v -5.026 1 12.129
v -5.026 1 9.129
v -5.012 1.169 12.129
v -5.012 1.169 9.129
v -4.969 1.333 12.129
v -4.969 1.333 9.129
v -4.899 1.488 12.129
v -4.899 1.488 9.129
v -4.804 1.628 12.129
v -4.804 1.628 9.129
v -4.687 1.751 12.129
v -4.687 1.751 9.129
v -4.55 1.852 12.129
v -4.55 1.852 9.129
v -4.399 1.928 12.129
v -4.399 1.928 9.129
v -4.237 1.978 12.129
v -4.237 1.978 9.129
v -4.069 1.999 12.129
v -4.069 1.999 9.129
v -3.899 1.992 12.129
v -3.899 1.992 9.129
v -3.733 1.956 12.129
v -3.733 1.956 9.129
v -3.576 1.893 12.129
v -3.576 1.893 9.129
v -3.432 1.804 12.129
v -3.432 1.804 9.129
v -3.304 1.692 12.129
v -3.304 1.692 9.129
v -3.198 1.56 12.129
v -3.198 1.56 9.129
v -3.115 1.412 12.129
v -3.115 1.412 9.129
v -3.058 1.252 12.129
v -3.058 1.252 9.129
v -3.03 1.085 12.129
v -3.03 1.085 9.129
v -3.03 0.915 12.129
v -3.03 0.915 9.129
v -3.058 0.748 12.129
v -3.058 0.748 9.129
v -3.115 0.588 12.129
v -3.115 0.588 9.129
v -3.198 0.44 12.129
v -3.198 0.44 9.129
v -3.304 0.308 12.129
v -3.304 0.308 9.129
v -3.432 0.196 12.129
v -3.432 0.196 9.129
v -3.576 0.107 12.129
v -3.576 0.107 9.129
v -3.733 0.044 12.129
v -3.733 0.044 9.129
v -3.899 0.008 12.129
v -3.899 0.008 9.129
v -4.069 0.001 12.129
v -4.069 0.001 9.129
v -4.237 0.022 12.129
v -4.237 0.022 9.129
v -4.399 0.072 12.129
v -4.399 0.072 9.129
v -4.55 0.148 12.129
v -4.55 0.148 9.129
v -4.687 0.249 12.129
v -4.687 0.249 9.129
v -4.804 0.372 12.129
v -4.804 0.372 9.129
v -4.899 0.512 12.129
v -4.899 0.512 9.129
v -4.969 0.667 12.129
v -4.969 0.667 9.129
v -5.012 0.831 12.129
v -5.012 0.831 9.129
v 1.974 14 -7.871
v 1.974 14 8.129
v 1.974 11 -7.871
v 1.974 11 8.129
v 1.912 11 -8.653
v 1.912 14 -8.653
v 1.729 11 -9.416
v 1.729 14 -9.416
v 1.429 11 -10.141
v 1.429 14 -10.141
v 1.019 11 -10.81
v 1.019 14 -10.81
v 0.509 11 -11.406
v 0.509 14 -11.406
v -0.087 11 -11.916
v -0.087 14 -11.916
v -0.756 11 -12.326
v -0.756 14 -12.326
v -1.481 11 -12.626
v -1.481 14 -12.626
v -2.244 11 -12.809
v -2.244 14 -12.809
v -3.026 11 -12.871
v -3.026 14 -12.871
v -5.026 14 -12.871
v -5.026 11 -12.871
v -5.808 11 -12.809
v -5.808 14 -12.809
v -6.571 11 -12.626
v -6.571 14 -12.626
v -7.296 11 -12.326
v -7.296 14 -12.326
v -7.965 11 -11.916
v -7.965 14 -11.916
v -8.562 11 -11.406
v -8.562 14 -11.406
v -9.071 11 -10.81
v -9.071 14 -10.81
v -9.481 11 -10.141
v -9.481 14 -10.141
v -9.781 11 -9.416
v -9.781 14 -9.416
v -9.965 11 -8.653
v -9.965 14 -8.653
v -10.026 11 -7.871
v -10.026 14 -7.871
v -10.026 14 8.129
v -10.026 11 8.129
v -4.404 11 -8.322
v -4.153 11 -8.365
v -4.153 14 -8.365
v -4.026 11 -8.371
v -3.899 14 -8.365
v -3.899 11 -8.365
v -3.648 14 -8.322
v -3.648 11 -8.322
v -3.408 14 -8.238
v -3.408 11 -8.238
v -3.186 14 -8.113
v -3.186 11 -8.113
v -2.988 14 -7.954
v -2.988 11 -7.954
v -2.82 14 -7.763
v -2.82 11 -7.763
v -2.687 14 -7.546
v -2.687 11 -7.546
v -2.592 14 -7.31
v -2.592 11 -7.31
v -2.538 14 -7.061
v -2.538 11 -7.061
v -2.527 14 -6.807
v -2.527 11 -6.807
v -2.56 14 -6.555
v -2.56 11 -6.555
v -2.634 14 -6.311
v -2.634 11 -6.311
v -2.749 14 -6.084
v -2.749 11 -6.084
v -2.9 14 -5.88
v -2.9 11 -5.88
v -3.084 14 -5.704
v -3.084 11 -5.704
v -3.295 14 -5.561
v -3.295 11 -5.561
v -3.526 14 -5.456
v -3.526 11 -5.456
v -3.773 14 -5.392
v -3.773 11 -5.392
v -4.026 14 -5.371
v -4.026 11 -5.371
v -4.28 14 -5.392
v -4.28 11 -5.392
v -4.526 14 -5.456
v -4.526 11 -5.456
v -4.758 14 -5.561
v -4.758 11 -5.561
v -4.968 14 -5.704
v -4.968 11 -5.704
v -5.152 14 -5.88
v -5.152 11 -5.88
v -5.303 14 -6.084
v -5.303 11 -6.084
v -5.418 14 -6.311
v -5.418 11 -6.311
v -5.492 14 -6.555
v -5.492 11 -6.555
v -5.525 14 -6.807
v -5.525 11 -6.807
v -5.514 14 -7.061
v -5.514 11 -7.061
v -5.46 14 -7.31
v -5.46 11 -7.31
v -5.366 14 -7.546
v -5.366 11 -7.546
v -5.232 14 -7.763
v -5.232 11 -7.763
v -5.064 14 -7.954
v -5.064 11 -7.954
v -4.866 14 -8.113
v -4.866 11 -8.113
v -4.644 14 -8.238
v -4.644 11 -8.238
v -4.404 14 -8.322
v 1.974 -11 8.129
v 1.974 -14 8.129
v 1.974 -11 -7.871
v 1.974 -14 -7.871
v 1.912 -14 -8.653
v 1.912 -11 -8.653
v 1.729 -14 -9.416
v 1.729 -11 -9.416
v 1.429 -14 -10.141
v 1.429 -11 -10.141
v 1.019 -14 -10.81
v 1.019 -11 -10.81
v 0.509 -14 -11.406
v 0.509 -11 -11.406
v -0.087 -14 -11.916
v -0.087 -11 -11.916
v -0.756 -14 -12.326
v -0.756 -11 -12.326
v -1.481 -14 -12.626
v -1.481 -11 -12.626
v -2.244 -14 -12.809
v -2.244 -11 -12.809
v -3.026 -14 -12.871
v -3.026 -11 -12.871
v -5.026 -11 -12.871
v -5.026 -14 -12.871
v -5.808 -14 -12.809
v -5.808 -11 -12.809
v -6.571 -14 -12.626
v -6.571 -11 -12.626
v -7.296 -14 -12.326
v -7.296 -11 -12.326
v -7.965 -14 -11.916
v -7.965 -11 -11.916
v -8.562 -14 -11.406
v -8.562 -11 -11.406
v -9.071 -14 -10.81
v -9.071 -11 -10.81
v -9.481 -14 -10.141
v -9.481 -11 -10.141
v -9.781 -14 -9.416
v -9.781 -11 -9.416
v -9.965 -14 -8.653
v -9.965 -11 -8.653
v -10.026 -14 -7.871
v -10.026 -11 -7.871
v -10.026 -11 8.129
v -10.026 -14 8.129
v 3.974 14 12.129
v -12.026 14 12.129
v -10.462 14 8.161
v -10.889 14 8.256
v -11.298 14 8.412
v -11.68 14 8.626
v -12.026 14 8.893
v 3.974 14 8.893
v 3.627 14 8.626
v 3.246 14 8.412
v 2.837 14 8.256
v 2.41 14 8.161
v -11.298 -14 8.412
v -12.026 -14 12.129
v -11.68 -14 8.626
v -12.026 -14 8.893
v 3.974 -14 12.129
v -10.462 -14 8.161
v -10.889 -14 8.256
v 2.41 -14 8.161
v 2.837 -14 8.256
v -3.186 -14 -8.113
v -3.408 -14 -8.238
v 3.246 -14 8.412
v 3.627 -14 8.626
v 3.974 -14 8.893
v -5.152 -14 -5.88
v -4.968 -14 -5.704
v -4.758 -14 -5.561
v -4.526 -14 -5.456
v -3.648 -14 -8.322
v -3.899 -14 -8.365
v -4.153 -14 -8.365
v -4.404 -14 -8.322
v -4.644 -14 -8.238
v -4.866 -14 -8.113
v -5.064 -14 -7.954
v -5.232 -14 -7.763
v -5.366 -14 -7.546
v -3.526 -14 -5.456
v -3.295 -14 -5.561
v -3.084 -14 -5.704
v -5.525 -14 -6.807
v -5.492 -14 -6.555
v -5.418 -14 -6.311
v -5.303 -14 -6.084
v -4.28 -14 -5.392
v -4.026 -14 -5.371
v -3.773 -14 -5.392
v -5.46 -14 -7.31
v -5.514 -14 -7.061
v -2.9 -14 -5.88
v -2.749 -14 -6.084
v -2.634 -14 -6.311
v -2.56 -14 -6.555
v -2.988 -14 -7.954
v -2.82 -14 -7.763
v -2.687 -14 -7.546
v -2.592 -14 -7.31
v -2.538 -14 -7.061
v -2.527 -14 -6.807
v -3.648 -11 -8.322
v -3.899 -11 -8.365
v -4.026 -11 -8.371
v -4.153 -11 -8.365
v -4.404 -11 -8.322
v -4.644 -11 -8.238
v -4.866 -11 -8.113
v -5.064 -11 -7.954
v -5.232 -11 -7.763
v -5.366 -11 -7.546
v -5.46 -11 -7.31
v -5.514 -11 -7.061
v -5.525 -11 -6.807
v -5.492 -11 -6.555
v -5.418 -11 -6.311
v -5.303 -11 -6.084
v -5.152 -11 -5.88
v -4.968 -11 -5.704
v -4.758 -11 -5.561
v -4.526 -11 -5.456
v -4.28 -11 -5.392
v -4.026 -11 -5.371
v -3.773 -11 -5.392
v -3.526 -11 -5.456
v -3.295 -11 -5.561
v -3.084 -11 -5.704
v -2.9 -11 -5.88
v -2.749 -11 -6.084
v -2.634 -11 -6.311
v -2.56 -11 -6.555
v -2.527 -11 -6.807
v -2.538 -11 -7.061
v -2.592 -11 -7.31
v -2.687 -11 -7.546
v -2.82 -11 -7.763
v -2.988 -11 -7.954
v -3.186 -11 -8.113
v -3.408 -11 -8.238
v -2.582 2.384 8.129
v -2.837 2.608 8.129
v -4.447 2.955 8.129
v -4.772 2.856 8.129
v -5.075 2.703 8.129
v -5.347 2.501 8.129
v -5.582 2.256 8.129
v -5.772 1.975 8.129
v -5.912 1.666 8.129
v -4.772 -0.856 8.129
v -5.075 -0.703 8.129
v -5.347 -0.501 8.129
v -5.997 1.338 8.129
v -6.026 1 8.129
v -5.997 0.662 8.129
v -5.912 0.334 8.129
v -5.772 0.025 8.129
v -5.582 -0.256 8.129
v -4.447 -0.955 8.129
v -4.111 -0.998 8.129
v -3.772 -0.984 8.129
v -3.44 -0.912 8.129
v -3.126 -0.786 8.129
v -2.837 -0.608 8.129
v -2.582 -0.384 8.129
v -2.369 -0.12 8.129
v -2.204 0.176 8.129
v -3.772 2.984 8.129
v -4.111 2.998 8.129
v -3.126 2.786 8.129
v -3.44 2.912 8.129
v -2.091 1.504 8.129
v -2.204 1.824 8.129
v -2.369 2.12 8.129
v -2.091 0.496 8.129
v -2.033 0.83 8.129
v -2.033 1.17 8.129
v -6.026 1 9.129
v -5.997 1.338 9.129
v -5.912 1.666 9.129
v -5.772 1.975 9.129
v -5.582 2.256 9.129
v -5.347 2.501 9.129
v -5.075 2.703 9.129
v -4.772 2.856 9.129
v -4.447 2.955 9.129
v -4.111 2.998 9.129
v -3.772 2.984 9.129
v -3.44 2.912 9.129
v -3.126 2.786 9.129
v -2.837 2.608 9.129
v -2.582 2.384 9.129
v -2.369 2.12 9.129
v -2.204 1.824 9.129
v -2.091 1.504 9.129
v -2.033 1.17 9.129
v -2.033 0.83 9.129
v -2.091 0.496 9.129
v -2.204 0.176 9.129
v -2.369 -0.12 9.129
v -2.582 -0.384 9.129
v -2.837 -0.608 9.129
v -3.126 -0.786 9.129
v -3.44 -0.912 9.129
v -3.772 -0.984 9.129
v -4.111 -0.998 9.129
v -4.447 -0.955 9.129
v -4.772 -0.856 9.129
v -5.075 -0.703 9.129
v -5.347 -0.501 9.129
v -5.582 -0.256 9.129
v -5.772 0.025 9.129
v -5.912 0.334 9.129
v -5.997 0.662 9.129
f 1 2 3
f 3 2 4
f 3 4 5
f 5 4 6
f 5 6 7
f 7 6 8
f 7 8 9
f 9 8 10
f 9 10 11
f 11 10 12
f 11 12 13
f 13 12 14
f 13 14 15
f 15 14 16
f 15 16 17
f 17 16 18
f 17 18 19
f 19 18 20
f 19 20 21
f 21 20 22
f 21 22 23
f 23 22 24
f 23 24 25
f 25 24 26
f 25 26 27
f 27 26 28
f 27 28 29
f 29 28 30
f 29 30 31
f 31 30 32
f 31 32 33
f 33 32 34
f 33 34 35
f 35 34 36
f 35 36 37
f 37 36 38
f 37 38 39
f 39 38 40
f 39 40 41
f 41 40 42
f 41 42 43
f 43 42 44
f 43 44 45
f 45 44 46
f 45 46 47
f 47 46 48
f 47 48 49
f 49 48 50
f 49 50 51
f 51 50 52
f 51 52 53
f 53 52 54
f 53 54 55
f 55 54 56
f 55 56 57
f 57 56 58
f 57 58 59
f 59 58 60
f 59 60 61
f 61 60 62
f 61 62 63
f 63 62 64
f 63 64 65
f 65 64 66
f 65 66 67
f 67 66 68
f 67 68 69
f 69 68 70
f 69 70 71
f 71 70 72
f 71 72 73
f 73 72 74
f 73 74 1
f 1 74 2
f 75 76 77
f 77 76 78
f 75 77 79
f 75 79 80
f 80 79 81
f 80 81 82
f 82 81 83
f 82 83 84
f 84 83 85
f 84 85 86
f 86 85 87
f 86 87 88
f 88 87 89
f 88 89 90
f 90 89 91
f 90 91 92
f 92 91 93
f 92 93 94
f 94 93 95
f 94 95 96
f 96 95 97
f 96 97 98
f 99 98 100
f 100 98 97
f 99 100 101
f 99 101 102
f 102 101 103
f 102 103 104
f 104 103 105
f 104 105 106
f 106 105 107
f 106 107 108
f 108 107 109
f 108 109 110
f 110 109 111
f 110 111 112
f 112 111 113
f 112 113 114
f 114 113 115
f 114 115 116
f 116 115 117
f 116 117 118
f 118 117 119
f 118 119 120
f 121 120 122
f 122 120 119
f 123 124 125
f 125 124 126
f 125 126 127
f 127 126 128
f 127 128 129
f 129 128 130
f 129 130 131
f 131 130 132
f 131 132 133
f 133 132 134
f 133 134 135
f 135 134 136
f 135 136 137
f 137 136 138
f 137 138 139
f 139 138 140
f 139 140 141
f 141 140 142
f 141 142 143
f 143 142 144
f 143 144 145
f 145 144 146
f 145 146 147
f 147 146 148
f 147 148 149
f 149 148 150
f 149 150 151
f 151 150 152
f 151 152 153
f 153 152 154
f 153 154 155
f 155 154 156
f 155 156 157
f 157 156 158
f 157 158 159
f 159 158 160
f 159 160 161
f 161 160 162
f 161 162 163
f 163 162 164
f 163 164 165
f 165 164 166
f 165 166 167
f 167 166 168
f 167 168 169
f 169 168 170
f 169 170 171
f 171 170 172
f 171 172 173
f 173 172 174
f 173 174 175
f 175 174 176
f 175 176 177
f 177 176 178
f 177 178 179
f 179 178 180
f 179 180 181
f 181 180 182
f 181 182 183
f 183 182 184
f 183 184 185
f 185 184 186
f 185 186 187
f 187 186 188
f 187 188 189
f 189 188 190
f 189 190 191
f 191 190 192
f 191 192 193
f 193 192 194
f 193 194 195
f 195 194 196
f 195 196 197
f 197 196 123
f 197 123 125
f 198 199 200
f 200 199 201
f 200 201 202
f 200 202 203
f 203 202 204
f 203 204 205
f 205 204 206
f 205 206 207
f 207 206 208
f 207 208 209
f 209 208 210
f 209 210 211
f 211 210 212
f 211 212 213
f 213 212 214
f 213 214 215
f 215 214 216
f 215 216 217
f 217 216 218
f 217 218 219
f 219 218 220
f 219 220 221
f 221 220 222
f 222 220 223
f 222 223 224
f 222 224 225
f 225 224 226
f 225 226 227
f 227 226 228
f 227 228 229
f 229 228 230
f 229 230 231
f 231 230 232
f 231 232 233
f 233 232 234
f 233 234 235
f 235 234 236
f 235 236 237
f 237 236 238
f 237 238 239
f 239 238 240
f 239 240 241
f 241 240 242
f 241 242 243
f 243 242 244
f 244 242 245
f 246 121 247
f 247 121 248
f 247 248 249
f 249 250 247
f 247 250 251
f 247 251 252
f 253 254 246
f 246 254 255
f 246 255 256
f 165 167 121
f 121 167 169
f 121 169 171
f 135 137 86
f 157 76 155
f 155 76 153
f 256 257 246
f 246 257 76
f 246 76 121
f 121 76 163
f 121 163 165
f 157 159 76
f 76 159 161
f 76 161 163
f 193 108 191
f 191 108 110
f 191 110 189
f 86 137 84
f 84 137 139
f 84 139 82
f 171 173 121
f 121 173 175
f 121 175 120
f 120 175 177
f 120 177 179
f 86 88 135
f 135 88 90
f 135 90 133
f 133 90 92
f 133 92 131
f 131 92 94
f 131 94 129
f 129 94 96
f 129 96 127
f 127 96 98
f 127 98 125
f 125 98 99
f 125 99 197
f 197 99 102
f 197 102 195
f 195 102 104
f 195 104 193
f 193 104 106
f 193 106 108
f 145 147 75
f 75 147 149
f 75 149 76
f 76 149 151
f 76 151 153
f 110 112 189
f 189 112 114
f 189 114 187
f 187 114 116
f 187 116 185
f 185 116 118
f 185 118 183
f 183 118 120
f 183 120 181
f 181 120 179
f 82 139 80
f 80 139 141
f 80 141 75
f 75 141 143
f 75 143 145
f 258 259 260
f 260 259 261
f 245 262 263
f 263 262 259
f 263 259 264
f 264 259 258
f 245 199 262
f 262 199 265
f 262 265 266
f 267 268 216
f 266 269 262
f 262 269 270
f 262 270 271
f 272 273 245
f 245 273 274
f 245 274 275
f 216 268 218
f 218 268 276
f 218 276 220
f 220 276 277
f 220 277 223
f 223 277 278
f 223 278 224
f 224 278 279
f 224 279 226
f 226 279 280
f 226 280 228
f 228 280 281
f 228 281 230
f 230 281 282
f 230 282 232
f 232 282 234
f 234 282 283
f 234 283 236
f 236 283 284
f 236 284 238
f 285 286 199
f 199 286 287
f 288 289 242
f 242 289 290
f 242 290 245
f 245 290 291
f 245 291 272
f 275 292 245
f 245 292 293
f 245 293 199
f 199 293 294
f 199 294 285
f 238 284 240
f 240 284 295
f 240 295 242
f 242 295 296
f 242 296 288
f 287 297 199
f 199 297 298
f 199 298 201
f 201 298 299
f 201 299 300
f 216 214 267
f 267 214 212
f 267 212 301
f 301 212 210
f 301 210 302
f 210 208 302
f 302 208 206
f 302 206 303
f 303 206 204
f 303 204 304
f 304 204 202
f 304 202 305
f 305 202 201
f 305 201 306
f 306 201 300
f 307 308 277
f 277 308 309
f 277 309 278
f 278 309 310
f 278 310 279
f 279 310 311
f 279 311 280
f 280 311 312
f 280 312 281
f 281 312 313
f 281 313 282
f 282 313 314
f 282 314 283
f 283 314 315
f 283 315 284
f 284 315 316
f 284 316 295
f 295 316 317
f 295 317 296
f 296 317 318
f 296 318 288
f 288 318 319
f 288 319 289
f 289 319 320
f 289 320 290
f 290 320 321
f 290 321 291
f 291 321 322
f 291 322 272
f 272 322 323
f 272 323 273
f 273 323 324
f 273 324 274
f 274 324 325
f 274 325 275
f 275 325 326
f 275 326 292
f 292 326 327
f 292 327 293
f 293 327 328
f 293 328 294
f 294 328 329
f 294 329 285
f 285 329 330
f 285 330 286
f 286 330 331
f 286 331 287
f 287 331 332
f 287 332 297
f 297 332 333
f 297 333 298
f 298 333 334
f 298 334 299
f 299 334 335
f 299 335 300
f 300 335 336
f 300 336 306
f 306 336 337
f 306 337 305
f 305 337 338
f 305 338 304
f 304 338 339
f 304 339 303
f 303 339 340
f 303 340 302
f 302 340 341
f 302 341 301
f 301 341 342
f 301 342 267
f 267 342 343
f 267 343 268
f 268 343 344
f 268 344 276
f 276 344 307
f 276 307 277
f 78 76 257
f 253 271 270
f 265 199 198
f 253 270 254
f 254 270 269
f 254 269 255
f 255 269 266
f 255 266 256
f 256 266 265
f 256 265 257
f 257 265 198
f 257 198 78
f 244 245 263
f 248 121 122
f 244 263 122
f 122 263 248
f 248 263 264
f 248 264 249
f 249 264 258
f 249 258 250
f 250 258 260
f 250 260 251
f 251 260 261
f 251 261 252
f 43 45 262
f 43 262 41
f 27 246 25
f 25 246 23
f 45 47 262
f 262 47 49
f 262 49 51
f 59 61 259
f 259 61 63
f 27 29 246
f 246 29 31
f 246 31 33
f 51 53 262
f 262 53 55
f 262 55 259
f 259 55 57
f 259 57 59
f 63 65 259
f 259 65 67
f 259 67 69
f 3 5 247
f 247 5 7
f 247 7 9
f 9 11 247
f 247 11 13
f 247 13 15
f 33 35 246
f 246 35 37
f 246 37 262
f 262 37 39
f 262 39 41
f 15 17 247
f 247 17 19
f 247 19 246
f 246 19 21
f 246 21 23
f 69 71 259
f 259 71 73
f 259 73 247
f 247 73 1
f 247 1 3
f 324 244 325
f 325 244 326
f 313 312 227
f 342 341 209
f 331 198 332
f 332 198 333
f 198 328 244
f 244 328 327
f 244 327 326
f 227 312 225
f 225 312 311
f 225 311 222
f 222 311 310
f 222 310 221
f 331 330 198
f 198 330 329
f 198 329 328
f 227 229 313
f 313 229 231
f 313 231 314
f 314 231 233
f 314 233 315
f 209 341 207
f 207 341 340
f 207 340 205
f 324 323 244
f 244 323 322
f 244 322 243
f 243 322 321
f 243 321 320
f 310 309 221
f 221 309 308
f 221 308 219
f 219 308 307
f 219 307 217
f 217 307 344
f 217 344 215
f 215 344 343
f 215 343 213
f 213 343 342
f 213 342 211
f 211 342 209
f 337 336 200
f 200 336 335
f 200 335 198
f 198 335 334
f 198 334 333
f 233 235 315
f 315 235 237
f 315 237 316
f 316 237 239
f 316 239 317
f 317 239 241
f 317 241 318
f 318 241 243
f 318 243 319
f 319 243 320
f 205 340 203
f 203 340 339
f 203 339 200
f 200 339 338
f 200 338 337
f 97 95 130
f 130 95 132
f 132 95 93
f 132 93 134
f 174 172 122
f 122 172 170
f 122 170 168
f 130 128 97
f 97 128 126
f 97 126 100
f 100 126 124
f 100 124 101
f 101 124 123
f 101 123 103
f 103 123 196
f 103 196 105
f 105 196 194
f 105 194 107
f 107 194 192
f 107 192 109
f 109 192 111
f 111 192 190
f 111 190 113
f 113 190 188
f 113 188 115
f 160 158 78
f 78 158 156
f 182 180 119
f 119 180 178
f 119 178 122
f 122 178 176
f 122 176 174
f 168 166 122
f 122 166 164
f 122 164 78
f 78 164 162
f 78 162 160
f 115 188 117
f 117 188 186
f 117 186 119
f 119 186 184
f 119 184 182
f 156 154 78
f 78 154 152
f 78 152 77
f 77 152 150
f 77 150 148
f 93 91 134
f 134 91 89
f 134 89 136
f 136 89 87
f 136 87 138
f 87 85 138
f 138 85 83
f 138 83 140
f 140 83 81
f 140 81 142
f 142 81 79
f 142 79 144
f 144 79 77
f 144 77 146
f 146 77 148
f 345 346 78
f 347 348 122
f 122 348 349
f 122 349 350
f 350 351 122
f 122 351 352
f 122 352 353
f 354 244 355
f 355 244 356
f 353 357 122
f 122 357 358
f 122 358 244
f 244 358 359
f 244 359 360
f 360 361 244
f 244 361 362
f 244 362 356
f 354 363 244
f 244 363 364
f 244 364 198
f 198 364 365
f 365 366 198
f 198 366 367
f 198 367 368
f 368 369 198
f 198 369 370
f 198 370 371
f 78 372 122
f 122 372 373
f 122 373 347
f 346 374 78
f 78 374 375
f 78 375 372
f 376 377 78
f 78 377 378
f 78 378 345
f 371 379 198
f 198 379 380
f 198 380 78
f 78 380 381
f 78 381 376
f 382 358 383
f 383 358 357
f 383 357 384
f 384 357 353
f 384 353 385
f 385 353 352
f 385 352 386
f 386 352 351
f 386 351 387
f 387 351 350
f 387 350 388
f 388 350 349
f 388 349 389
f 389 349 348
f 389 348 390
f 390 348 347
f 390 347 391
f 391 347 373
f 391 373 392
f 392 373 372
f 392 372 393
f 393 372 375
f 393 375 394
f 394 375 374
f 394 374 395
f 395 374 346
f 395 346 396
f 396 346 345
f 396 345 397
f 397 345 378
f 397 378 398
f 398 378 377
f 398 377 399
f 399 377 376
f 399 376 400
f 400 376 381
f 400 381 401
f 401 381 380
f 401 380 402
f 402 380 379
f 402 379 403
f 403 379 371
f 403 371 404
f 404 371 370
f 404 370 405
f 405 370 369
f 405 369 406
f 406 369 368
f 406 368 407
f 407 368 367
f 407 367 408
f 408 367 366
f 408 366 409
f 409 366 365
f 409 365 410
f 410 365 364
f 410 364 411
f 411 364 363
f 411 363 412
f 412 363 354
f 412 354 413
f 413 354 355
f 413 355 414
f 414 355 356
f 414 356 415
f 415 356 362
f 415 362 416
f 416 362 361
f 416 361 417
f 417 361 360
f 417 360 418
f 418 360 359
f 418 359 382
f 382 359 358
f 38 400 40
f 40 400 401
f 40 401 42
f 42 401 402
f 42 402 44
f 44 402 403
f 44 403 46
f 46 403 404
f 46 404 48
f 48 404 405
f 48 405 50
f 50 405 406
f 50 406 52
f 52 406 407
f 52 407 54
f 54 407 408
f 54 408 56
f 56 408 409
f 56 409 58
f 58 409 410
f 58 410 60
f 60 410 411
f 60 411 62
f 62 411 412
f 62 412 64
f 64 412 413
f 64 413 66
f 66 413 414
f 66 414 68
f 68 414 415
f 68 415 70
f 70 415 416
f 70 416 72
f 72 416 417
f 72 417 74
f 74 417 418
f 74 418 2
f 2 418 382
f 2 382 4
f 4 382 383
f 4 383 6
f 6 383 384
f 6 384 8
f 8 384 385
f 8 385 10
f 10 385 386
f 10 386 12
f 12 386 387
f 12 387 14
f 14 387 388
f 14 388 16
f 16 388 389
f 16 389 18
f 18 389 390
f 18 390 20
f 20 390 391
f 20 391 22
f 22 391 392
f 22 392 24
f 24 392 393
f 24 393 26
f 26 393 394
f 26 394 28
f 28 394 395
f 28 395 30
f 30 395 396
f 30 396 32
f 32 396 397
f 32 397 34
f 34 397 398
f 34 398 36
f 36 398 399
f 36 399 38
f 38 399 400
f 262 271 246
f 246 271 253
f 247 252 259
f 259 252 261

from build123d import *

# Parameters (mm, degrees)
EXTRUDE_2_DEPTH     = 14
SKETCH_4_R          = 1.5
CUT_EXTRUDE_2_DEPTH = 21
EXTRUDE_3_DEPTH     = 14
SKETCH_5_W          = 12
SKETCH_5_H          = 26.808765345
CUT_EXTRUDE_3_DEPTH = 11
SKETCH_7_R          = 1
CUT_EXTRUDE_4_DEPTH = 11
SKETCH_8_R          = 2
CUT_EXTRUDE_5_DEPTH = 1
SKETCH_9_W          = 1
SKETCH_9_H          = 28
CUT_EXTRUDE_6_DEPTH = 10


with BuildPart() as part:
    # 草图1 → 凸台-拉伸2 (new body, symmetric)
    with BuildSketch(Plane(origin=(0, 0, 0), x_dir=(1, 0, 0), z_dir=(0, 1, 0))):
        with BuildLine():
            Line((-5.026135275, 12.870728162), (-3.026135275, 12.870728162))
            ThreePointArc((-3.026135275, 12.870728162), (0.50939863, 11.406262068), (1.973864725, 7.870728162))
            Line((1.973864725, 7.870728162), (1.973864725, -8.129271838))
            Line((1.973864725, -8.129271838), (-10.026135275, -8.129271838))
            Line((-10.026135275, -8.129271838), (-10.026135275, 7.870728162))
            ThreePointArc((-10.026135275, 7.870728162), (-8.561669181, 11.406262068), (-5.026135275, 12.870728162))
        make_face()
    extrude(amount=EXTRUDE_2_DEPTH, both=True)

    # 草图4 → 切除-拉伸2 (cut, symmetric)
    with BuildSketch(Plane(origin=(0, 0, 0), x_dir=(1, 0, 0), z_dir=(0, 1, 0))):
        with Locations((-4.026135275, 6.870728162)):
            Circle(SKETCH_4_R)
    extrude(amount=CUT_EXTRUDE_2_DEPTH, both=True, mode=Mode.SUBTRACT)

    # 草图2 → 凸台-拉伸3 (add, symmetric)
    with BuildSketch(Plane(origin=(0, 0, 0), x_dir=(1, 0, 0), z_dir=(0, 1, 0))):
        with BuildLine():
            Line((-10.026135275, -8.129271838), (1.973864725, -8.129271838))
            ThreePointArc((1.973864725, -8.129271838), (4.095185068, -9.007951494), (4.973864725, -11.129271838))
            Line((4.973864725, -11.129271838), (4.973864725, -12.129271838))
            Line((4.973864725, -12.129271838), (-13.026135275, -12.129271838))
            Line((-13.026135275, -12.129271838), (-13.026135275, -11.129271838))
            ThreePointArc((-13.026135275, -11.129271838), (-12.147455619, -9.007951494), (-10.026135275, -8.129271838))
        make_face()
    extrude(amount=EXTRUDE_3_DEPTH, both=True)

    # 草图5 → 切除-拉伸3 (cut, symmetric)
    with BuildSketch(Plane(origin=(0, 0, 0), x_dir=(1, 0, 0), z_dir=(0, 1, 0))):
        with Locations((-4.026135275, 5.275110834)):
            Rectangle(SKETCH_5_W, SKETCH_5_H)
    extrude(amount=CUT_EXTRUDE_3_DEPTH, both=True, mode=Mode.SUBTRACT)

    # 草图7 → 切除-拉伸4 (cut, symmetric)
    with BuildSketch(Plane.XY.offset(12.129271838)):
        with Locations((-4.026135275, 1)):
            Circle(SKETCH_7_R)
    extrude(amount=CUT_EXTRUDE_4_DEPTH, both=True, mode=Mode.SUBTRACT)

    # 草图8 → 切除-拉伸5 (cut)
    with BuildSketch(Plane(origin=(0, 0, 8.129271838), x_dir=(-1, 0, 0), z_dir=(0, 0, -1))):
        with Locations((4.026135275, 1)):
            Circle(SKETCH_8_R)
    extrude(amount=-CUT_EXTRUDE_5_DEPTH, mode=Mode.SUBTRACT)

    # 草图9 → 切除-拉伸6 (cut)
    with BuildSketch(Plane.XY.offset(12.129271838)):
        with Locations((-12.526135275, 0)):
            Rectangle(SKETCH_9_W, SKETCH_9_H)
        with Locations((4.473864725, 0)):
            Rectangle(SKETCH_9_W, SKETCH_9_H)
    extrude(amount=-CUT_EXTRUDE_6_DEPTH, mode=Mode.SUBTRACT)


solid = part.part
